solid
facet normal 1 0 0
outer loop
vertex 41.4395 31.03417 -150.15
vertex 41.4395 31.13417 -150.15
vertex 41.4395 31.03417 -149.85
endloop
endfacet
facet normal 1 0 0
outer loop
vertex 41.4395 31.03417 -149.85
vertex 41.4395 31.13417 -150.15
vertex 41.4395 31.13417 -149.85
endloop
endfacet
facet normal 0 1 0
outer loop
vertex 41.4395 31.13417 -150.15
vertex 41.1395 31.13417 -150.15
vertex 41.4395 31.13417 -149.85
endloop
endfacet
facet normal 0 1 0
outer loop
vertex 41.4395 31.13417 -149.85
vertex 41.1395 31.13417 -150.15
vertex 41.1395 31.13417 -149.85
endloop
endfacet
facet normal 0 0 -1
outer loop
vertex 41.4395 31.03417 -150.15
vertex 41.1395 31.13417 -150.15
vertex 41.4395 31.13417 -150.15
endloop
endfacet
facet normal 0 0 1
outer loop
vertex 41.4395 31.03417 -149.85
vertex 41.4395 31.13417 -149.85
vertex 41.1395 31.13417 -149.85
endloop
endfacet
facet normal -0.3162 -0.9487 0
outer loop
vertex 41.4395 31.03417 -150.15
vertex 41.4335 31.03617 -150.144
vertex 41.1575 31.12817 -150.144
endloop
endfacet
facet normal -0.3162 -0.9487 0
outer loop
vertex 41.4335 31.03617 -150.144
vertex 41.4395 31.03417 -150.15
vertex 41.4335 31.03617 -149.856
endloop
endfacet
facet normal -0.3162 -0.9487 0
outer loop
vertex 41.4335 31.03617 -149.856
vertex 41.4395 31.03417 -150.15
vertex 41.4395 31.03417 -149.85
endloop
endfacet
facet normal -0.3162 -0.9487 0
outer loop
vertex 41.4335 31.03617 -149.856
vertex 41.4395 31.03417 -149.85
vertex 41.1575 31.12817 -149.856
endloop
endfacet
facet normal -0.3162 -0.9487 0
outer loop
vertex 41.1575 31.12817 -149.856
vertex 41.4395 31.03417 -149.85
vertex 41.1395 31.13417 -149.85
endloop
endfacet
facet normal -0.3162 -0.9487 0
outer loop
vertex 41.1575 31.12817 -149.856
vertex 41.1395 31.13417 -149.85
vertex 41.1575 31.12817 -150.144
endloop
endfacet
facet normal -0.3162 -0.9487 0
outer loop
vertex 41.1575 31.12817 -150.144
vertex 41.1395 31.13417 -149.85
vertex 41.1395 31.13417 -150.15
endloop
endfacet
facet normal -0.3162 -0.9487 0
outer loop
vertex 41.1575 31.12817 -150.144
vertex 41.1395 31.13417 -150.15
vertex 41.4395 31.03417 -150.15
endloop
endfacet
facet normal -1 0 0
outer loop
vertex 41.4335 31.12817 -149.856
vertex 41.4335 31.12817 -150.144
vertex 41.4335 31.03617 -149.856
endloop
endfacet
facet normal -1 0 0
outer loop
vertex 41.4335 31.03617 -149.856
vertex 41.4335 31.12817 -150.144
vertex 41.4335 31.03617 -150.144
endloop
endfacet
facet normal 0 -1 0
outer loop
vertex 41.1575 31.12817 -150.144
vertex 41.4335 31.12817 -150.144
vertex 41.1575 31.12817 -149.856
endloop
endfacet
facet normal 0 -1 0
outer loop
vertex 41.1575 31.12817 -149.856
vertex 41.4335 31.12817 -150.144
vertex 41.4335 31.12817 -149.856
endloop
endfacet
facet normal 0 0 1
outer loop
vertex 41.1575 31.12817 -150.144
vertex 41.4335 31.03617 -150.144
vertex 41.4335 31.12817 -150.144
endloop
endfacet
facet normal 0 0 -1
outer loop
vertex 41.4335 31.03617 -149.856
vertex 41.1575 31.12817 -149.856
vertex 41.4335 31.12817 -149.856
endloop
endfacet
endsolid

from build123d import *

# Parameters (mm, degrees)
SKETCH1_W           = 300
SKETCH1_H           = 100
BOSS_EXTRUDE1_DEPTH = 300
SKETCH3_W           = 288
SKETCH3_H           = 94
CUT_EXTRUDE2_DEPTH  = 294
CUT_EXTRUDE3_DEPTH  = 316
SCALE1_SCALE        = 0.001


with BuildPart() as part:
    # Sketch1 → Boss-Extrude1 (new body)
    with BuildSketch(Plane.XY):
        Rectangle(SKETCH1_W, SKETCH1_H)
    extrude(amount=-BOSS_EXTRUDE1_DEPTH)

    # Sketch3 → Cut-Extrude2 (cut)
    with BuildSketch(Plane.ZY.offset(150)):
        with Locations((-150, -3)):
            Rectangle(SKETCH3_W, SKETCH3_H)
    extrude(amount=-CUT_EXTRUDE2_DEPTH, mode=Mode.SUBTRACT)

    # Sketch2 → Cut-Extrude3 (cut)
    with BuildSketch(Plane.XY):
        Polygon((-150, 50), (-150, -50), (150, -50), align=None)
    extrude(amount=-CUT_EXTRUDE3_DEPTH, mode=Mode.SUBTRACT)


with BuildPart() as part_1:
    # Scale1: scaled about (41.330829635, 31.115283942, -150)
    add(part.part.scale(SCALE1_SCALE).moved(Location((41.289498805, 31.084168658, -149.85))))


solid = part_1.part
